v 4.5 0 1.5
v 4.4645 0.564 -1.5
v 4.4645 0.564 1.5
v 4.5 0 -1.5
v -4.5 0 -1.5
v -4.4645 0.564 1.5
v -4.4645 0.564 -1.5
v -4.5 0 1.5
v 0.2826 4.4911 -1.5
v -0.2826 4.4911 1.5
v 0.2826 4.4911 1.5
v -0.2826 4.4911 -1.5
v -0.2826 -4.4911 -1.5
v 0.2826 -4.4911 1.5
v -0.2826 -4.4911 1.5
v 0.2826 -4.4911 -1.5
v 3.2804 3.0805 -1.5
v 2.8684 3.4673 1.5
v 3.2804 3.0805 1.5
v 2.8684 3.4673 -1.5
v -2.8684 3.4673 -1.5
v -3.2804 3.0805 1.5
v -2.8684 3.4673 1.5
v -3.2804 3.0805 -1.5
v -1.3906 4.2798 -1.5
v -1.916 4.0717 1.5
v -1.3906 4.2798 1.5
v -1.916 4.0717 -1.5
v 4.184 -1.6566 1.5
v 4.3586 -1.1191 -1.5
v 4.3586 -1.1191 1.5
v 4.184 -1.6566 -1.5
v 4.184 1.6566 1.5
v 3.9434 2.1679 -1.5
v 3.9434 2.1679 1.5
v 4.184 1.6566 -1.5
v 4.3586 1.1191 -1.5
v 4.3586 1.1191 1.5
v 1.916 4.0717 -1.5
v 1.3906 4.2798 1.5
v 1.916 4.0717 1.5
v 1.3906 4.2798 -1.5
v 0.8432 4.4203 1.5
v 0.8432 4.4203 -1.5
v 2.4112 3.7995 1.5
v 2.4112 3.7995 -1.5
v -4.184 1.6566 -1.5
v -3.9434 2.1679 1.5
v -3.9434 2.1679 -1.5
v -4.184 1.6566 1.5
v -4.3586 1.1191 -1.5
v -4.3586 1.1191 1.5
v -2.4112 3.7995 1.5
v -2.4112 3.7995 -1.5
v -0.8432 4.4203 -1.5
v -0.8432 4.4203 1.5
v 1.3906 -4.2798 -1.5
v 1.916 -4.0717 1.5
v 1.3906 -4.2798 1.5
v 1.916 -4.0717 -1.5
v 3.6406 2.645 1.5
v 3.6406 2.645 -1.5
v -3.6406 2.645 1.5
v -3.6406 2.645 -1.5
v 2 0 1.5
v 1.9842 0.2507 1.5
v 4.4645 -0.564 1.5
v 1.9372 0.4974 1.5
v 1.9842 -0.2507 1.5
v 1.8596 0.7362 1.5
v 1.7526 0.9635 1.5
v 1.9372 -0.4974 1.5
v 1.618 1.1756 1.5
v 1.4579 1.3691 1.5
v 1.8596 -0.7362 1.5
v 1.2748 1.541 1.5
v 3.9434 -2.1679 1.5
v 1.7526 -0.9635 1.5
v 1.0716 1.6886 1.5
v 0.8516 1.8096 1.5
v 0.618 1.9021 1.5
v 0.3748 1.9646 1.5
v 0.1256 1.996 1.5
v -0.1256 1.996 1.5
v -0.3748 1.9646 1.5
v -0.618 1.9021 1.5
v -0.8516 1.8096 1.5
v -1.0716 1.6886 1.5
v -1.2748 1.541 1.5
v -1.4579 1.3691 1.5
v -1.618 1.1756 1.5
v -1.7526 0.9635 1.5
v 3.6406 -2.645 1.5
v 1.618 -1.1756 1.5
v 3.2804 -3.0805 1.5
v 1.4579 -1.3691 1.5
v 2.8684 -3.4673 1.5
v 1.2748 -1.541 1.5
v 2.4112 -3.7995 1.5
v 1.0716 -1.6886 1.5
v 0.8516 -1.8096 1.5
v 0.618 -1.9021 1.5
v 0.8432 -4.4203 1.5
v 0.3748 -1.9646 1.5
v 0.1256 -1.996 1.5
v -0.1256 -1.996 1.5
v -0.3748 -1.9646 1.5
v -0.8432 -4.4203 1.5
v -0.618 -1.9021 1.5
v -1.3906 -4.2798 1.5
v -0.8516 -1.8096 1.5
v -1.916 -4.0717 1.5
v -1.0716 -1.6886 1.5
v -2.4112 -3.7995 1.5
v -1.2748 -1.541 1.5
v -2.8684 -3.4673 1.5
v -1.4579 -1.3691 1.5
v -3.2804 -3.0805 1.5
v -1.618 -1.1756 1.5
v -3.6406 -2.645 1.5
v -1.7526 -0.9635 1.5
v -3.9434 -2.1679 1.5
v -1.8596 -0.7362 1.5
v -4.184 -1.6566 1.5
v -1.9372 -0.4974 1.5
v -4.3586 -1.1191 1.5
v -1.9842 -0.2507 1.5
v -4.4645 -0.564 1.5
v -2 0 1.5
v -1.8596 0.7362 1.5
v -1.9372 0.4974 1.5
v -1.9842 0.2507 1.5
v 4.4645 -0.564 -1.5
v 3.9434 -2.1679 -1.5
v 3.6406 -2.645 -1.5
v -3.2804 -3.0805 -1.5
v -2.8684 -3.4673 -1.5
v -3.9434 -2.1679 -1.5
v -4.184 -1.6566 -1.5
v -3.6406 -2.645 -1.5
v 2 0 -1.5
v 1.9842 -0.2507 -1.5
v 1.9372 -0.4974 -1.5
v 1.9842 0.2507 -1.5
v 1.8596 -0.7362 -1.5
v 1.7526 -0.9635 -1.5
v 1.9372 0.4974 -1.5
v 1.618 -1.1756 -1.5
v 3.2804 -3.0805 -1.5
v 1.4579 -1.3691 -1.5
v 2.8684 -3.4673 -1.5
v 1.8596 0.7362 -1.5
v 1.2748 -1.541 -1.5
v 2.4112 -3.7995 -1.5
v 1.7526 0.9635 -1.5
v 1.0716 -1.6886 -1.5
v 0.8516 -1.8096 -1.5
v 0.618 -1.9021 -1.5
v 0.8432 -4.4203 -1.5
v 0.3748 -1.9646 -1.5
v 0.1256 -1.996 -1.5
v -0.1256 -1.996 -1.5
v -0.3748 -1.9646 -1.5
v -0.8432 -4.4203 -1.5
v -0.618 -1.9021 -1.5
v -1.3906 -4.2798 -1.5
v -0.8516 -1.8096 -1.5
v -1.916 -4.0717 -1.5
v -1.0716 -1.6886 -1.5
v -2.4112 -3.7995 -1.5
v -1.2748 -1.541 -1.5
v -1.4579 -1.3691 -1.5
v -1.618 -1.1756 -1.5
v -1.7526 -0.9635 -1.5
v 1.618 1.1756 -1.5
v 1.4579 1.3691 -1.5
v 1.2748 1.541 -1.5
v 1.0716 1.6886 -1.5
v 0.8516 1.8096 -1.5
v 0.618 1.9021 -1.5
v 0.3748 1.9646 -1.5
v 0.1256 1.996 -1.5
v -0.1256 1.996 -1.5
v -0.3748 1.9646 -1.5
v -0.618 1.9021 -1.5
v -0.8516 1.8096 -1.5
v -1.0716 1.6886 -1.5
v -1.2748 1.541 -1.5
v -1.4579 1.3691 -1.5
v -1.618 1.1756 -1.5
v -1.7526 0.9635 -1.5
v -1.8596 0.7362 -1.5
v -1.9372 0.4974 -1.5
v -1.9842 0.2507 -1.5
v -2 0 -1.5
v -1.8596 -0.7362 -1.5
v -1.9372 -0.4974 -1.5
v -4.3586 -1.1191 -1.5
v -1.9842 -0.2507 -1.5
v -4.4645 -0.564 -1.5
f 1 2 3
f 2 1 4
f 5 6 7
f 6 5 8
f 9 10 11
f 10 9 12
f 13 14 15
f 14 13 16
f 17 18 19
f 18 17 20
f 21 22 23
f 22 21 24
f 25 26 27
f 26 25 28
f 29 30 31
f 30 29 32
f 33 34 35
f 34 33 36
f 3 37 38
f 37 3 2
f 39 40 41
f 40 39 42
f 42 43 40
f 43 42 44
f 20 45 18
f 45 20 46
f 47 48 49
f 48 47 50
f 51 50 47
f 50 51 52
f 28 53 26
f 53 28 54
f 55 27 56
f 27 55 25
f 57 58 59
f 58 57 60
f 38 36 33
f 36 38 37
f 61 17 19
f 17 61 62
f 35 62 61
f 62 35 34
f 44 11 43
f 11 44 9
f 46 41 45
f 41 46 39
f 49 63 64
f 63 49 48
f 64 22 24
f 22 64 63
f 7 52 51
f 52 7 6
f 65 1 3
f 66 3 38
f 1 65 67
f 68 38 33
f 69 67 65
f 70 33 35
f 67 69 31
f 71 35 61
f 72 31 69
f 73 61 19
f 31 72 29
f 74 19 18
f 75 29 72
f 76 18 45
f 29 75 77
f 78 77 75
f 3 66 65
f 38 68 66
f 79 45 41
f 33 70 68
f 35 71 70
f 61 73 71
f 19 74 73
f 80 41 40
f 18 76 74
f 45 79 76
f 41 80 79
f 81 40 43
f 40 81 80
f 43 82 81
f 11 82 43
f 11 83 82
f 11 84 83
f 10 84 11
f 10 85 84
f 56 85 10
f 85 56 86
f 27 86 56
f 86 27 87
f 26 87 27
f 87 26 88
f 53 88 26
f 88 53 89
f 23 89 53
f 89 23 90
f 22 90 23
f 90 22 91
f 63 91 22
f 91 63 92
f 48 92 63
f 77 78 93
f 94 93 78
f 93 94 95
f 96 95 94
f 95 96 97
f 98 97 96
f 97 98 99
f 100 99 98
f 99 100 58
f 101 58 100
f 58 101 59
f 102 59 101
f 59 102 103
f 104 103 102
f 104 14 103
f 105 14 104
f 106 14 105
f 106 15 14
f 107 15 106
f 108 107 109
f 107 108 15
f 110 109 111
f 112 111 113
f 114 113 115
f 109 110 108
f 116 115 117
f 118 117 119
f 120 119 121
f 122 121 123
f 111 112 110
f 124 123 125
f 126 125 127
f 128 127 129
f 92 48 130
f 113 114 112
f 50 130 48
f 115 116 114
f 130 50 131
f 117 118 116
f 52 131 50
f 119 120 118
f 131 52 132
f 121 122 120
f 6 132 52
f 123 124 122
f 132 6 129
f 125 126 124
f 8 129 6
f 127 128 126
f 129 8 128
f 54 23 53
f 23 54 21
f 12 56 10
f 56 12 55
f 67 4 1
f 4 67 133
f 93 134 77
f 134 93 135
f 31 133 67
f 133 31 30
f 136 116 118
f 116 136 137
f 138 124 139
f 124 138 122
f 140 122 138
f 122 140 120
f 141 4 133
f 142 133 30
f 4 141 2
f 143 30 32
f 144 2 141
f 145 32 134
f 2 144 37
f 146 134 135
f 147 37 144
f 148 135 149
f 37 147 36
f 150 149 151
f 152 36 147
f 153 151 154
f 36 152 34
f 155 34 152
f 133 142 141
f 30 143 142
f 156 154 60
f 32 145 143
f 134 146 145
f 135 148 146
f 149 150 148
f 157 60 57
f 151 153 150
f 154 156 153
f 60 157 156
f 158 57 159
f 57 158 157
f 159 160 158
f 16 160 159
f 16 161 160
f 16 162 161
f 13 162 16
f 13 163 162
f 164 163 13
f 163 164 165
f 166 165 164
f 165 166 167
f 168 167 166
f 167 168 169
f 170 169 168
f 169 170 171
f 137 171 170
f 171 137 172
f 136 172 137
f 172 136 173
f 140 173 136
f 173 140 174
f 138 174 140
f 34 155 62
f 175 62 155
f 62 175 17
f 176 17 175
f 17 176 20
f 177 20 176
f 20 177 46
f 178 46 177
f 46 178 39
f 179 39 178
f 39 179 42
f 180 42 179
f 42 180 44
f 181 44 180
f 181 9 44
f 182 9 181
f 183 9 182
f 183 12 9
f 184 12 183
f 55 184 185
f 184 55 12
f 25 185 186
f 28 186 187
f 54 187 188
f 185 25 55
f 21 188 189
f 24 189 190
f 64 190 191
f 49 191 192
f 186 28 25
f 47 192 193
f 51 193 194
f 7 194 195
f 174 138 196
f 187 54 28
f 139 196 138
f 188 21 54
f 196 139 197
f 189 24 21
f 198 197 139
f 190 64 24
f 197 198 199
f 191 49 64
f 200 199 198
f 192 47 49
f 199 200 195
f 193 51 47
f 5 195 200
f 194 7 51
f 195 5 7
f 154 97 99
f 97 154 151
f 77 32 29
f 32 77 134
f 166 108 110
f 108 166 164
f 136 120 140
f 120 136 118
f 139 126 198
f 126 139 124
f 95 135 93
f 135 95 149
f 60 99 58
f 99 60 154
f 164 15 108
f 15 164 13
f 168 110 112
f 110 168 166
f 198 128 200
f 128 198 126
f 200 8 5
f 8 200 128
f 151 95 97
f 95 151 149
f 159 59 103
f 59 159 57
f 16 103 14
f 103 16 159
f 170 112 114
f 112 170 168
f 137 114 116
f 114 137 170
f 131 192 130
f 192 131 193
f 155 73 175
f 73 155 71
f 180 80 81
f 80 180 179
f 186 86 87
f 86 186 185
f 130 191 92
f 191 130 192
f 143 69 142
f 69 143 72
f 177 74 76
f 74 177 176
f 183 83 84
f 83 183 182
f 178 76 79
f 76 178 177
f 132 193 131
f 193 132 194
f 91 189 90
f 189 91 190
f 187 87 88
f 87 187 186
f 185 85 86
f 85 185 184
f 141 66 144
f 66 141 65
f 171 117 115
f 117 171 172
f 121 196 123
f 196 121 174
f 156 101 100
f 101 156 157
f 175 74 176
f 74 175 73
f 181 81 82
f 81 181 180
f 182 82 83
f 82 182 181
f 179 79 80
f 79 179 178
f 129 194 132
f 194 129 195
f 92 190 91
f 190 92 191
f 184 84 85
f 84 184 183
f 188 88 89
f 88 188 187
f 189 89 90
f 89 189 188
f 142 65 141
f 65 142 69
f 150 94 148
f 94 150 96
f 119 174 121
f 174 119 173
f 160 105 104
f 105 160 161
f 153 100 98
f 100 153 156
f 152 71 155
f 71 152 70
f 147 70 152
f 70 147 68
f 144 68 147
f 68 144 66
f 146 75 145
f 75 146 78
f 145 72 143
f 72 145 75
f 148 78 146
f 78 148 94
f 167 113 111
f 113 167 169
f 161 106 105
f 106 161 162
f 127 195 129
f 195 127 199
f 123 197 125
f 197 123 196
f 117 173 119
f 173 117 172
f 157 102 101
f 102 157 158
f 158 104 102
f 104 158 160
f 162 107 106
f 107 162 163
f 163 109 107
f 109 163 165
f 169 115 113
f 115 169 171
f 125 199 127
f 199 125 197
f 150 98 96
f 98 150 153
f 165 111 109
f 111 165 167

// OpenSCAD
$fn = 50;


difference() {
	union() {
		translate(v = [0, 0, -1.5000000000]) {
			cylinder(h = 3, r = 4.5000000000);
		}
	}
	union() {
		translate(v = [0, 0, -100.0000000000]) {
			cylinder(h = 200, r = 2);
		}
	}
}
